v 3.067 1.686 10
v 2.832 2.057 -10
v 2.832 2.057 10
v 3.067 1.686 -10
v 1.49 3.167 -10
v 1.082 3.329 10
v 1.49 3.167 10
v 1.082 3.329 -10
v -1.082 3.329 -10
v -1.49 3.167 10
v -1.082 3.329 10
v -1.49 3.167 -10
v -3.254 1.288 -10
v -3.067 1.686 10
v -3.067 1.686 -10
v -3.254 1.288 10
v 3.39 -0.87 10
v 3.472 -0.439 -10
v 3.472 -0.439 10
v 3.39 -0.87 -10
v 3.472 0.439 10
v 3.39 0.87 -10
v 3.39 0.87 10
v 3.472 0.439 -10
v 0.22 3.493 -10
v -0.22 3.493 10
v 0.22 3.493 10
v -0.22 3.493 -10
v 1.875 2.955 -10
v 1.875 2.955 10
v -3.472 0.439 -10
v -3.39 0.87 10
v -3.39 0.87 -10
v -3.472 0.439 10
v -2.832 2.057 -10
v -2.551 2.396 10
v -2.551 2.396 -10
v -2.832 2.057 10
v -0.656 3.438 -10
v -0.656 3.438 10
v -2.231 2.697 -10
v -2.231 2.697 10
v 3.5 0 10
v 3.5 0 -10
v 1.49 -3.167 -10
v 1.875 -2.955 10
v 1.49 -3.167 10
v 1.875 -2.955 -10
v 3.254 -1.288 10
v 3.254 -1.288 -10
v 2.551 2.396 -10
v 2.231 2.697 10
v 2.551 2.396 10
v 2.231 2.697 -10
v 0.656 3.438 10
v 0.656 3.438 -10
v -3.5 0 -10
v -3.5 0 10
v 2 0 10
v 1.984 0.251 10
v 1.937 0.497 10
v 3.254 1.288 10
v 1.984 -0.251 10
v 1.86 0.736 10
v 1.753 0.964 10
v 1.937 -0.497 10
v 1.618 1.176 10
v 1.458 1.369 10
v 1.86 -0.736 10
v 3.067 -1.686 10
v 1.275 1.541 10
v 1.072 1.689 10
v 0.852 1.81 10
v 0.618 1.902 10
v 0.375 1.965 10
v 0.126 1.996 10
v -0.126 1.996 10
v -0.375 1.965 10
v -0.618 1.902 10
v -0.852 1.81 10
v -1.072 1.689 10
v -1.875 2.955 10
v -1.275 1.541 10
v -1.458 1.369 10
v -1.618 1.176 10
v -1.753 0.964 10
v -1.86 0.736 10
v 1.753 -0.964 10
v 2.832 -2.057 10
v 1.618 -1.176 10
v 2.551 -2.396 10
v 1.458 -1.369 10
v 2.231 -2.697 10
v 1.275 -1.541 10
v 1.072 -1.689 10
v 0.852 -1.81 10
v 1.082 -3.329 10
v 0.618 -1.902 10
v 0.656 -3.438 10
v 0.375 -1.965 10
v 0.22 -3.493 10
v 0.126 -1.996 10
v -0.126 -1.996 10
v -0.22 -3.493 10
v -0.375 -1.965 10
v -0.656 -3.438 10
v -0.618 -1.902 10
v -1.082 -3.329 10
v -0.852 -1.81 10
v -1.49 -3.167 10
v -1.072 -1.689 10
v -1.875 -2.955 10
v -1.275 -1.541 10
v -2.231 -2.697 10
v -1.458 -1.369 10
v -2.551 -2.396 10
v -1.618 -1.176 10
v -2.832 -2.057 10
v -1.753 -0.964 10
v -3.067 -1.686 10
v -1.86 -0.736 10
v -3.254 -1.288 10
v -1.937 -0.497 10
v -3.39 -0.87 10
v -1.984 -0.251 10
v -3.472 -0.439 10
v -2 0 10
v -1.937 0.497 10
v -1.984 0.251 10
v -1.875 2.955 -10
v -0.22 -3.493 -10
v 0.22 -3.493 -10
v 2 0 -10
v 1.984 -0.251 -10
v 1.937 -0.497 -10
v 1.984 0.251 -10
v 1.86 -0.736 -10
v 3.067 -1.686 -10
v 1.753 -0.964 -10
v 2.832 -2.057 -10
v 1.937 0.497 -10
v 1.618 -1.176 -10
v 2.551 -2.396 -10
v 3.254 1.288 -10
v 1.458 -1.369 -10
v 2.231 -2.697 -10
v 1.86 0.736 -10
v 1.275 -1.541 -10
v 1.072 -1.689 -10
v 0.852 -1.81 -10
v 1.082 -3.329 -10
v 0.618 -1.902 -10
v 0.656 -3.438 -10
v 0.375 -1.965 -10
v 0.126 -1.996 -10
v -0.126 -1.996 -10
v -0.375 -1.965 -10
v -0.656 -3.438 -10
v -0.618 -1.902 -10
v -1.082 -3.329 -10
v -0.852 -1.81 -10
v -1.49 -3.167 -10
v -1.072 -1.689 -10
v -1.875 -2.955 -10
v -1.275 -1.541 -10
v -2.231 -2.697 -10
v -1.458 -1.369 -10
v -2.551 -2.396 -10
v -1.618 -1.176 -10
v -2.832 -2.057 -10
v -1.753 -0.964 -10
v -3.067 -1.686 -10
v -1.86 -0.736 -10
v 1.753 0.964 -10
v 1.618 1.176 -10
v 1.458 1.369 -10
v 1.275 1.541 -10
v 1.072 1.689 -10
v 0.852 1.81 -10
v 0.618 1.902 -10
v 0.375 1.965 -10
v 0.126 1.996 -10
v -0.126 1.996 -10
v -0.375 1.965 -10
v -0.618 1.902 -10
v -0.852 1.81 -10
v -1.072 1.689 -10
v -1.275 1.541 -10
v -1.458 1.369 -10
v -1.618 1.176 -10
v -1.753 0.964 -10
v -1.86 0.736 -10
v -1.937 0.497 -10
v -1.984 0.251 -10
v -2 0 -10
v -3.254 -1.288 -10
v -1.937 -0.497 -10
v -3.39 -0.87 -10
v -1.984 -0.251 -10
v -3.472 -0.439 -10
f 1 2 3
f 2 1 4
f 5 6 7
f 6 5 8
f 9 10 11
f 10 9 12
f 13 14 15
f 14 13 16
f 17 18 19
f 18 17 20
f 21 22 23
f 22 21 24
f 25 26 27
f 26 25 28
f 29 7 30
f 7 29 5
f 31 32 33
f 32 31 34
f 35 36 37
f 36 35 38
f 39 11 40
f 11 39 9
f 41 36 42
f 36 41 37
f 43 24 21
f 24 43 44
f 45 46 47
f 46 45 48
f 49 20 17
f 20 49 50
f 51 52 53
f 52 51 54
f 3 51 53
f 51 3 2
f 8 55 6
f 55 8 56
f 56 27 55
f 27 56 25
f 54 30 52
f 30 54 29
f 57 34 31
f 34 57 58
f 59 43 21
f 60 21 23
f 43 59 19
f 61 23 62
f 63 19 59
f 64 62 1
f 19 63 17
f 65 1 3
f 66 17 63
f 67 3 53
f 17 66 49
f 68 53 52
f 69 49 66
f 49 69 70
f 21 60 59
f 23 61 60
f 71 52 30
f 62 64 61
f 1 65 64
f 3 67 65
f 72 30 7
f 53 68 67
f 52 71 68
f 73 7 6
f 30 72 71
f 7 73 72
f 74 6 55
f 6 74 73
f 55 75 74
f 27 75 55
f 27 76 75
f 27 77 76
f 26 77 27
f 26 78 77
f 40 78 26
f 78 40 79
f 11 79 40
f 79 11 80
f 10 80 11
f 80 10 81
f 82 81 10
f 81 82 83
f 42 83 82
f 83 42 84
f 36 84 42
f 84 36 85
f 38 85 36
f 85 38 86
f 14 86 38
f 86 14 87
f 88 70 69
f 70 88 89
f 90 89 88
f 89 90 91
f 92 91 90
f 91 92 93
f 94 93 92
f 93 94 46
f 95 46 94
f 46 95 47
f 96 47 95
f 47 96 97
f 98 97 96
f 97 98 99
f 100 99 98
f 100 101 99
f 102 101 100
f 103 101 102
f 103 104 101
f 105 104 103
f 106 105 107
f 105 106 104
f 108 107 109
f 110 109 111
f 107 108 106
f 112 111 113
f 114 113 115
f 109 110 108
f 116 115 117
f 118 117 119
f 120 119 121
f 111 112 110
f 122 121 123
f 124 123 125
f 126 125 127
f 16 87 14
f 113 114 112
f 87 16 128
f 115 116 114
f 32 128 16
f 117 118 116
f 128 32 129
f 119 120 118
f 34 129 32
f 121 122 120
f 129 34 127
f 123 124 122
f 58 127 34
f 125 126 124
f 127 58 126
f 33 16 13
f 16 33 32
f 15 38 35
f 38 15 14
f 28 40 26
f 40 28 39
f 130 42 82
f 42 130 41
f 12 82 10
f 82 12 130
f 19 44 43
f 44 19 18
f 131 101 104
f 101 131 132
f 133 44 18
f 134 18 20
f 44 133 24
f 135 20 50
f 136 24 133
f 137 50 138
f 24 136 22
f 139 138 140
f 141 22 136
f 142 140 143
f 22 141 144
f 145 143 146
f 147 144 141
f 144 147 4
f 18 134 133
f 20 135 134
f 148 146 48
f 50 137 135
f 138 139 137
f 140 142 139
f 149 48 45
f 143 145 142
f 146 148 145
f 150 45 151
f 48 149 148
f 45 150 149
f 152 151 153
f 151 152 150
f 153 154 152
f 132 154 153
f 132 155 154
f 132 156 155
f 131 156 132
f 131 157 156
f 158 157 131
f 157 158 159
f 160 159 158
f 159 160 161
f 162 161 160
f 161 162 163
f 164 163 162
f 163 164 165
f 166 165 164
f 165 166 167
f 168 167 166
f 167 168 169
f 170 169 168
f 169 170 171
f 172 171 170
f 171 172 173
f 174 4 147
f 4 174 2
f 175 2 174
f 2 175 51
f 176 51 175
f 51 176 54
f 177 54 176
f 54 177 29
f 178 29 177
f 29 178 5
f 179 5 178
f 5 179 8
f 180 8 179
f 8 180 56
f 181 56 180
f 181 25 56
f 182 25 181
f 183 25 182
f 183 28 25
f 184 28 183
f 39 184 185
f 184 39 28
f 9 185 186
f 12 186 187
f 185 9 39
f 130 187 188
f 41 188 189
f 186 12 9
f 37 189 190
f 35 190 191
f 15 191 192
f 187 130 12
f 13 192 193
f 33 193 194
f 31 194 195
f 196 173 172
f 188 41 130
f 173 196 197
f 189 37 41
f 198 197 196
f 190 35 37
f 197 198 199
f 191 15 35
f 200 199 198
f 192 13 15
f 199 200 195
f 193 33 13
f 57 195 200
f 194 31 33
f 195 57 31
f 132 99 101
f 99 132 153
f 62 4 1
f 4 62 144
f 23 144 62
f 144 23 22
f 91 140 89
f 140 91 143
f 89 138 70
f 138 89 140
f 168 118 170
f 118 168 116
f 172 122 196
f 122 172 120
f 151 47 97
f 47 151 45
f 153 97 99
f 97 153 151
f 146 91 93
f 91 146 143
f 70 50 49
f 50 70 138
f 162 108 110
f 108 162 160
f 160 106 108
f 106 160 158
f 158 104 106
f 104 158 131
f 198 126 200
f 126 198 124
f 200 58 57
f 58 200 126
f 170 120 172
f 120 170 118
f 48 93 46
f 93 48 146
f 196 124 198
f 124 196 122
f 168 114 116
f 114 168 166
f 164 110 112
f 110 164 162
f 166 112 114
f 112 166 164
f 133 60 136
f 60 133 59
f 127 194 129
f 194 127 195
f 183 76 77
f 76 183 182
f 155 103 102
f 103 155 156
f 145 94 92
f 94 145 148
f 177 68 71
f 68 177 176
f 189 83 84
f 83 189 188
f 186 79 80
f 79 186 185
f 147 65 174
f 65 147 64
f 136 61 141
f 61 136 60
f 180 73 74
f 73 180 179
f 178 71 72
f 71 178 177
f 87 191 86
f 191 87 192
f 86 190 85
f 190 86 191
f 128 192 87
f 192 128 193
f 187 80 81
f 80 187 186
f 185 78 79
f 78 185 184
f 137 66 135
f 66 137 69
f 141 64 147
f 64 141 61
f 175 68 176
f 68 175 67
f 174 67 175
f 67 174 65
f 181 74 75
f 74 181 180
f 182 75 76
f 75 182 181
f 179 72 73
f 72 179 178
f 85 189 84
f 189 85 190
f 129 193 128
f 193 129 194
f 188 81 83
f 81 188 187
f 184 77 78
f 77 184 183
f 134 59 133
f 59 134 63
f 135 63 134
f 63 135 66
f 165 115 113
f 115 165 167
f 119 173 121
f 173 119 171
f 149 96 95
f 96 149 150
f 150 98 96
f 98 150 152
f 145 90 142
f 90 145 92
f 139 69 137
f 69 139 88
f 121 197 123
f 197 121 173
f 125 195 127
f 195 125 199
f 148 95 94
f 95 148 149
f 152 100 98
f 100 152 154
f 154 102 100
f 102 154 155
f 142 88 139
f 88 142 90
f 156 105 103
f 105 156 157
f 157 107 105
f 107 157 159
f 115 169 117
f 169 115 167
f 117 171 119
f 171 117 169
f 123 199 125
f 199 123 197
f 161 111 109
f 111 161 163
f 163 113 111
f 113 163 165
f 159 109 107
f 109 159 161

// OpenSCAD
$fn = 50;


difference() {
	union() {
		translate(v = [0, 0, -10.0000000000]) {
			cylinder(h = 20, r = 3.5000000000);
		}
	}
	union() {
		translate(v = [0, 0, -100.0000000000]) {
			cylinder(h = 200, r = 2);
		}
	}
}
